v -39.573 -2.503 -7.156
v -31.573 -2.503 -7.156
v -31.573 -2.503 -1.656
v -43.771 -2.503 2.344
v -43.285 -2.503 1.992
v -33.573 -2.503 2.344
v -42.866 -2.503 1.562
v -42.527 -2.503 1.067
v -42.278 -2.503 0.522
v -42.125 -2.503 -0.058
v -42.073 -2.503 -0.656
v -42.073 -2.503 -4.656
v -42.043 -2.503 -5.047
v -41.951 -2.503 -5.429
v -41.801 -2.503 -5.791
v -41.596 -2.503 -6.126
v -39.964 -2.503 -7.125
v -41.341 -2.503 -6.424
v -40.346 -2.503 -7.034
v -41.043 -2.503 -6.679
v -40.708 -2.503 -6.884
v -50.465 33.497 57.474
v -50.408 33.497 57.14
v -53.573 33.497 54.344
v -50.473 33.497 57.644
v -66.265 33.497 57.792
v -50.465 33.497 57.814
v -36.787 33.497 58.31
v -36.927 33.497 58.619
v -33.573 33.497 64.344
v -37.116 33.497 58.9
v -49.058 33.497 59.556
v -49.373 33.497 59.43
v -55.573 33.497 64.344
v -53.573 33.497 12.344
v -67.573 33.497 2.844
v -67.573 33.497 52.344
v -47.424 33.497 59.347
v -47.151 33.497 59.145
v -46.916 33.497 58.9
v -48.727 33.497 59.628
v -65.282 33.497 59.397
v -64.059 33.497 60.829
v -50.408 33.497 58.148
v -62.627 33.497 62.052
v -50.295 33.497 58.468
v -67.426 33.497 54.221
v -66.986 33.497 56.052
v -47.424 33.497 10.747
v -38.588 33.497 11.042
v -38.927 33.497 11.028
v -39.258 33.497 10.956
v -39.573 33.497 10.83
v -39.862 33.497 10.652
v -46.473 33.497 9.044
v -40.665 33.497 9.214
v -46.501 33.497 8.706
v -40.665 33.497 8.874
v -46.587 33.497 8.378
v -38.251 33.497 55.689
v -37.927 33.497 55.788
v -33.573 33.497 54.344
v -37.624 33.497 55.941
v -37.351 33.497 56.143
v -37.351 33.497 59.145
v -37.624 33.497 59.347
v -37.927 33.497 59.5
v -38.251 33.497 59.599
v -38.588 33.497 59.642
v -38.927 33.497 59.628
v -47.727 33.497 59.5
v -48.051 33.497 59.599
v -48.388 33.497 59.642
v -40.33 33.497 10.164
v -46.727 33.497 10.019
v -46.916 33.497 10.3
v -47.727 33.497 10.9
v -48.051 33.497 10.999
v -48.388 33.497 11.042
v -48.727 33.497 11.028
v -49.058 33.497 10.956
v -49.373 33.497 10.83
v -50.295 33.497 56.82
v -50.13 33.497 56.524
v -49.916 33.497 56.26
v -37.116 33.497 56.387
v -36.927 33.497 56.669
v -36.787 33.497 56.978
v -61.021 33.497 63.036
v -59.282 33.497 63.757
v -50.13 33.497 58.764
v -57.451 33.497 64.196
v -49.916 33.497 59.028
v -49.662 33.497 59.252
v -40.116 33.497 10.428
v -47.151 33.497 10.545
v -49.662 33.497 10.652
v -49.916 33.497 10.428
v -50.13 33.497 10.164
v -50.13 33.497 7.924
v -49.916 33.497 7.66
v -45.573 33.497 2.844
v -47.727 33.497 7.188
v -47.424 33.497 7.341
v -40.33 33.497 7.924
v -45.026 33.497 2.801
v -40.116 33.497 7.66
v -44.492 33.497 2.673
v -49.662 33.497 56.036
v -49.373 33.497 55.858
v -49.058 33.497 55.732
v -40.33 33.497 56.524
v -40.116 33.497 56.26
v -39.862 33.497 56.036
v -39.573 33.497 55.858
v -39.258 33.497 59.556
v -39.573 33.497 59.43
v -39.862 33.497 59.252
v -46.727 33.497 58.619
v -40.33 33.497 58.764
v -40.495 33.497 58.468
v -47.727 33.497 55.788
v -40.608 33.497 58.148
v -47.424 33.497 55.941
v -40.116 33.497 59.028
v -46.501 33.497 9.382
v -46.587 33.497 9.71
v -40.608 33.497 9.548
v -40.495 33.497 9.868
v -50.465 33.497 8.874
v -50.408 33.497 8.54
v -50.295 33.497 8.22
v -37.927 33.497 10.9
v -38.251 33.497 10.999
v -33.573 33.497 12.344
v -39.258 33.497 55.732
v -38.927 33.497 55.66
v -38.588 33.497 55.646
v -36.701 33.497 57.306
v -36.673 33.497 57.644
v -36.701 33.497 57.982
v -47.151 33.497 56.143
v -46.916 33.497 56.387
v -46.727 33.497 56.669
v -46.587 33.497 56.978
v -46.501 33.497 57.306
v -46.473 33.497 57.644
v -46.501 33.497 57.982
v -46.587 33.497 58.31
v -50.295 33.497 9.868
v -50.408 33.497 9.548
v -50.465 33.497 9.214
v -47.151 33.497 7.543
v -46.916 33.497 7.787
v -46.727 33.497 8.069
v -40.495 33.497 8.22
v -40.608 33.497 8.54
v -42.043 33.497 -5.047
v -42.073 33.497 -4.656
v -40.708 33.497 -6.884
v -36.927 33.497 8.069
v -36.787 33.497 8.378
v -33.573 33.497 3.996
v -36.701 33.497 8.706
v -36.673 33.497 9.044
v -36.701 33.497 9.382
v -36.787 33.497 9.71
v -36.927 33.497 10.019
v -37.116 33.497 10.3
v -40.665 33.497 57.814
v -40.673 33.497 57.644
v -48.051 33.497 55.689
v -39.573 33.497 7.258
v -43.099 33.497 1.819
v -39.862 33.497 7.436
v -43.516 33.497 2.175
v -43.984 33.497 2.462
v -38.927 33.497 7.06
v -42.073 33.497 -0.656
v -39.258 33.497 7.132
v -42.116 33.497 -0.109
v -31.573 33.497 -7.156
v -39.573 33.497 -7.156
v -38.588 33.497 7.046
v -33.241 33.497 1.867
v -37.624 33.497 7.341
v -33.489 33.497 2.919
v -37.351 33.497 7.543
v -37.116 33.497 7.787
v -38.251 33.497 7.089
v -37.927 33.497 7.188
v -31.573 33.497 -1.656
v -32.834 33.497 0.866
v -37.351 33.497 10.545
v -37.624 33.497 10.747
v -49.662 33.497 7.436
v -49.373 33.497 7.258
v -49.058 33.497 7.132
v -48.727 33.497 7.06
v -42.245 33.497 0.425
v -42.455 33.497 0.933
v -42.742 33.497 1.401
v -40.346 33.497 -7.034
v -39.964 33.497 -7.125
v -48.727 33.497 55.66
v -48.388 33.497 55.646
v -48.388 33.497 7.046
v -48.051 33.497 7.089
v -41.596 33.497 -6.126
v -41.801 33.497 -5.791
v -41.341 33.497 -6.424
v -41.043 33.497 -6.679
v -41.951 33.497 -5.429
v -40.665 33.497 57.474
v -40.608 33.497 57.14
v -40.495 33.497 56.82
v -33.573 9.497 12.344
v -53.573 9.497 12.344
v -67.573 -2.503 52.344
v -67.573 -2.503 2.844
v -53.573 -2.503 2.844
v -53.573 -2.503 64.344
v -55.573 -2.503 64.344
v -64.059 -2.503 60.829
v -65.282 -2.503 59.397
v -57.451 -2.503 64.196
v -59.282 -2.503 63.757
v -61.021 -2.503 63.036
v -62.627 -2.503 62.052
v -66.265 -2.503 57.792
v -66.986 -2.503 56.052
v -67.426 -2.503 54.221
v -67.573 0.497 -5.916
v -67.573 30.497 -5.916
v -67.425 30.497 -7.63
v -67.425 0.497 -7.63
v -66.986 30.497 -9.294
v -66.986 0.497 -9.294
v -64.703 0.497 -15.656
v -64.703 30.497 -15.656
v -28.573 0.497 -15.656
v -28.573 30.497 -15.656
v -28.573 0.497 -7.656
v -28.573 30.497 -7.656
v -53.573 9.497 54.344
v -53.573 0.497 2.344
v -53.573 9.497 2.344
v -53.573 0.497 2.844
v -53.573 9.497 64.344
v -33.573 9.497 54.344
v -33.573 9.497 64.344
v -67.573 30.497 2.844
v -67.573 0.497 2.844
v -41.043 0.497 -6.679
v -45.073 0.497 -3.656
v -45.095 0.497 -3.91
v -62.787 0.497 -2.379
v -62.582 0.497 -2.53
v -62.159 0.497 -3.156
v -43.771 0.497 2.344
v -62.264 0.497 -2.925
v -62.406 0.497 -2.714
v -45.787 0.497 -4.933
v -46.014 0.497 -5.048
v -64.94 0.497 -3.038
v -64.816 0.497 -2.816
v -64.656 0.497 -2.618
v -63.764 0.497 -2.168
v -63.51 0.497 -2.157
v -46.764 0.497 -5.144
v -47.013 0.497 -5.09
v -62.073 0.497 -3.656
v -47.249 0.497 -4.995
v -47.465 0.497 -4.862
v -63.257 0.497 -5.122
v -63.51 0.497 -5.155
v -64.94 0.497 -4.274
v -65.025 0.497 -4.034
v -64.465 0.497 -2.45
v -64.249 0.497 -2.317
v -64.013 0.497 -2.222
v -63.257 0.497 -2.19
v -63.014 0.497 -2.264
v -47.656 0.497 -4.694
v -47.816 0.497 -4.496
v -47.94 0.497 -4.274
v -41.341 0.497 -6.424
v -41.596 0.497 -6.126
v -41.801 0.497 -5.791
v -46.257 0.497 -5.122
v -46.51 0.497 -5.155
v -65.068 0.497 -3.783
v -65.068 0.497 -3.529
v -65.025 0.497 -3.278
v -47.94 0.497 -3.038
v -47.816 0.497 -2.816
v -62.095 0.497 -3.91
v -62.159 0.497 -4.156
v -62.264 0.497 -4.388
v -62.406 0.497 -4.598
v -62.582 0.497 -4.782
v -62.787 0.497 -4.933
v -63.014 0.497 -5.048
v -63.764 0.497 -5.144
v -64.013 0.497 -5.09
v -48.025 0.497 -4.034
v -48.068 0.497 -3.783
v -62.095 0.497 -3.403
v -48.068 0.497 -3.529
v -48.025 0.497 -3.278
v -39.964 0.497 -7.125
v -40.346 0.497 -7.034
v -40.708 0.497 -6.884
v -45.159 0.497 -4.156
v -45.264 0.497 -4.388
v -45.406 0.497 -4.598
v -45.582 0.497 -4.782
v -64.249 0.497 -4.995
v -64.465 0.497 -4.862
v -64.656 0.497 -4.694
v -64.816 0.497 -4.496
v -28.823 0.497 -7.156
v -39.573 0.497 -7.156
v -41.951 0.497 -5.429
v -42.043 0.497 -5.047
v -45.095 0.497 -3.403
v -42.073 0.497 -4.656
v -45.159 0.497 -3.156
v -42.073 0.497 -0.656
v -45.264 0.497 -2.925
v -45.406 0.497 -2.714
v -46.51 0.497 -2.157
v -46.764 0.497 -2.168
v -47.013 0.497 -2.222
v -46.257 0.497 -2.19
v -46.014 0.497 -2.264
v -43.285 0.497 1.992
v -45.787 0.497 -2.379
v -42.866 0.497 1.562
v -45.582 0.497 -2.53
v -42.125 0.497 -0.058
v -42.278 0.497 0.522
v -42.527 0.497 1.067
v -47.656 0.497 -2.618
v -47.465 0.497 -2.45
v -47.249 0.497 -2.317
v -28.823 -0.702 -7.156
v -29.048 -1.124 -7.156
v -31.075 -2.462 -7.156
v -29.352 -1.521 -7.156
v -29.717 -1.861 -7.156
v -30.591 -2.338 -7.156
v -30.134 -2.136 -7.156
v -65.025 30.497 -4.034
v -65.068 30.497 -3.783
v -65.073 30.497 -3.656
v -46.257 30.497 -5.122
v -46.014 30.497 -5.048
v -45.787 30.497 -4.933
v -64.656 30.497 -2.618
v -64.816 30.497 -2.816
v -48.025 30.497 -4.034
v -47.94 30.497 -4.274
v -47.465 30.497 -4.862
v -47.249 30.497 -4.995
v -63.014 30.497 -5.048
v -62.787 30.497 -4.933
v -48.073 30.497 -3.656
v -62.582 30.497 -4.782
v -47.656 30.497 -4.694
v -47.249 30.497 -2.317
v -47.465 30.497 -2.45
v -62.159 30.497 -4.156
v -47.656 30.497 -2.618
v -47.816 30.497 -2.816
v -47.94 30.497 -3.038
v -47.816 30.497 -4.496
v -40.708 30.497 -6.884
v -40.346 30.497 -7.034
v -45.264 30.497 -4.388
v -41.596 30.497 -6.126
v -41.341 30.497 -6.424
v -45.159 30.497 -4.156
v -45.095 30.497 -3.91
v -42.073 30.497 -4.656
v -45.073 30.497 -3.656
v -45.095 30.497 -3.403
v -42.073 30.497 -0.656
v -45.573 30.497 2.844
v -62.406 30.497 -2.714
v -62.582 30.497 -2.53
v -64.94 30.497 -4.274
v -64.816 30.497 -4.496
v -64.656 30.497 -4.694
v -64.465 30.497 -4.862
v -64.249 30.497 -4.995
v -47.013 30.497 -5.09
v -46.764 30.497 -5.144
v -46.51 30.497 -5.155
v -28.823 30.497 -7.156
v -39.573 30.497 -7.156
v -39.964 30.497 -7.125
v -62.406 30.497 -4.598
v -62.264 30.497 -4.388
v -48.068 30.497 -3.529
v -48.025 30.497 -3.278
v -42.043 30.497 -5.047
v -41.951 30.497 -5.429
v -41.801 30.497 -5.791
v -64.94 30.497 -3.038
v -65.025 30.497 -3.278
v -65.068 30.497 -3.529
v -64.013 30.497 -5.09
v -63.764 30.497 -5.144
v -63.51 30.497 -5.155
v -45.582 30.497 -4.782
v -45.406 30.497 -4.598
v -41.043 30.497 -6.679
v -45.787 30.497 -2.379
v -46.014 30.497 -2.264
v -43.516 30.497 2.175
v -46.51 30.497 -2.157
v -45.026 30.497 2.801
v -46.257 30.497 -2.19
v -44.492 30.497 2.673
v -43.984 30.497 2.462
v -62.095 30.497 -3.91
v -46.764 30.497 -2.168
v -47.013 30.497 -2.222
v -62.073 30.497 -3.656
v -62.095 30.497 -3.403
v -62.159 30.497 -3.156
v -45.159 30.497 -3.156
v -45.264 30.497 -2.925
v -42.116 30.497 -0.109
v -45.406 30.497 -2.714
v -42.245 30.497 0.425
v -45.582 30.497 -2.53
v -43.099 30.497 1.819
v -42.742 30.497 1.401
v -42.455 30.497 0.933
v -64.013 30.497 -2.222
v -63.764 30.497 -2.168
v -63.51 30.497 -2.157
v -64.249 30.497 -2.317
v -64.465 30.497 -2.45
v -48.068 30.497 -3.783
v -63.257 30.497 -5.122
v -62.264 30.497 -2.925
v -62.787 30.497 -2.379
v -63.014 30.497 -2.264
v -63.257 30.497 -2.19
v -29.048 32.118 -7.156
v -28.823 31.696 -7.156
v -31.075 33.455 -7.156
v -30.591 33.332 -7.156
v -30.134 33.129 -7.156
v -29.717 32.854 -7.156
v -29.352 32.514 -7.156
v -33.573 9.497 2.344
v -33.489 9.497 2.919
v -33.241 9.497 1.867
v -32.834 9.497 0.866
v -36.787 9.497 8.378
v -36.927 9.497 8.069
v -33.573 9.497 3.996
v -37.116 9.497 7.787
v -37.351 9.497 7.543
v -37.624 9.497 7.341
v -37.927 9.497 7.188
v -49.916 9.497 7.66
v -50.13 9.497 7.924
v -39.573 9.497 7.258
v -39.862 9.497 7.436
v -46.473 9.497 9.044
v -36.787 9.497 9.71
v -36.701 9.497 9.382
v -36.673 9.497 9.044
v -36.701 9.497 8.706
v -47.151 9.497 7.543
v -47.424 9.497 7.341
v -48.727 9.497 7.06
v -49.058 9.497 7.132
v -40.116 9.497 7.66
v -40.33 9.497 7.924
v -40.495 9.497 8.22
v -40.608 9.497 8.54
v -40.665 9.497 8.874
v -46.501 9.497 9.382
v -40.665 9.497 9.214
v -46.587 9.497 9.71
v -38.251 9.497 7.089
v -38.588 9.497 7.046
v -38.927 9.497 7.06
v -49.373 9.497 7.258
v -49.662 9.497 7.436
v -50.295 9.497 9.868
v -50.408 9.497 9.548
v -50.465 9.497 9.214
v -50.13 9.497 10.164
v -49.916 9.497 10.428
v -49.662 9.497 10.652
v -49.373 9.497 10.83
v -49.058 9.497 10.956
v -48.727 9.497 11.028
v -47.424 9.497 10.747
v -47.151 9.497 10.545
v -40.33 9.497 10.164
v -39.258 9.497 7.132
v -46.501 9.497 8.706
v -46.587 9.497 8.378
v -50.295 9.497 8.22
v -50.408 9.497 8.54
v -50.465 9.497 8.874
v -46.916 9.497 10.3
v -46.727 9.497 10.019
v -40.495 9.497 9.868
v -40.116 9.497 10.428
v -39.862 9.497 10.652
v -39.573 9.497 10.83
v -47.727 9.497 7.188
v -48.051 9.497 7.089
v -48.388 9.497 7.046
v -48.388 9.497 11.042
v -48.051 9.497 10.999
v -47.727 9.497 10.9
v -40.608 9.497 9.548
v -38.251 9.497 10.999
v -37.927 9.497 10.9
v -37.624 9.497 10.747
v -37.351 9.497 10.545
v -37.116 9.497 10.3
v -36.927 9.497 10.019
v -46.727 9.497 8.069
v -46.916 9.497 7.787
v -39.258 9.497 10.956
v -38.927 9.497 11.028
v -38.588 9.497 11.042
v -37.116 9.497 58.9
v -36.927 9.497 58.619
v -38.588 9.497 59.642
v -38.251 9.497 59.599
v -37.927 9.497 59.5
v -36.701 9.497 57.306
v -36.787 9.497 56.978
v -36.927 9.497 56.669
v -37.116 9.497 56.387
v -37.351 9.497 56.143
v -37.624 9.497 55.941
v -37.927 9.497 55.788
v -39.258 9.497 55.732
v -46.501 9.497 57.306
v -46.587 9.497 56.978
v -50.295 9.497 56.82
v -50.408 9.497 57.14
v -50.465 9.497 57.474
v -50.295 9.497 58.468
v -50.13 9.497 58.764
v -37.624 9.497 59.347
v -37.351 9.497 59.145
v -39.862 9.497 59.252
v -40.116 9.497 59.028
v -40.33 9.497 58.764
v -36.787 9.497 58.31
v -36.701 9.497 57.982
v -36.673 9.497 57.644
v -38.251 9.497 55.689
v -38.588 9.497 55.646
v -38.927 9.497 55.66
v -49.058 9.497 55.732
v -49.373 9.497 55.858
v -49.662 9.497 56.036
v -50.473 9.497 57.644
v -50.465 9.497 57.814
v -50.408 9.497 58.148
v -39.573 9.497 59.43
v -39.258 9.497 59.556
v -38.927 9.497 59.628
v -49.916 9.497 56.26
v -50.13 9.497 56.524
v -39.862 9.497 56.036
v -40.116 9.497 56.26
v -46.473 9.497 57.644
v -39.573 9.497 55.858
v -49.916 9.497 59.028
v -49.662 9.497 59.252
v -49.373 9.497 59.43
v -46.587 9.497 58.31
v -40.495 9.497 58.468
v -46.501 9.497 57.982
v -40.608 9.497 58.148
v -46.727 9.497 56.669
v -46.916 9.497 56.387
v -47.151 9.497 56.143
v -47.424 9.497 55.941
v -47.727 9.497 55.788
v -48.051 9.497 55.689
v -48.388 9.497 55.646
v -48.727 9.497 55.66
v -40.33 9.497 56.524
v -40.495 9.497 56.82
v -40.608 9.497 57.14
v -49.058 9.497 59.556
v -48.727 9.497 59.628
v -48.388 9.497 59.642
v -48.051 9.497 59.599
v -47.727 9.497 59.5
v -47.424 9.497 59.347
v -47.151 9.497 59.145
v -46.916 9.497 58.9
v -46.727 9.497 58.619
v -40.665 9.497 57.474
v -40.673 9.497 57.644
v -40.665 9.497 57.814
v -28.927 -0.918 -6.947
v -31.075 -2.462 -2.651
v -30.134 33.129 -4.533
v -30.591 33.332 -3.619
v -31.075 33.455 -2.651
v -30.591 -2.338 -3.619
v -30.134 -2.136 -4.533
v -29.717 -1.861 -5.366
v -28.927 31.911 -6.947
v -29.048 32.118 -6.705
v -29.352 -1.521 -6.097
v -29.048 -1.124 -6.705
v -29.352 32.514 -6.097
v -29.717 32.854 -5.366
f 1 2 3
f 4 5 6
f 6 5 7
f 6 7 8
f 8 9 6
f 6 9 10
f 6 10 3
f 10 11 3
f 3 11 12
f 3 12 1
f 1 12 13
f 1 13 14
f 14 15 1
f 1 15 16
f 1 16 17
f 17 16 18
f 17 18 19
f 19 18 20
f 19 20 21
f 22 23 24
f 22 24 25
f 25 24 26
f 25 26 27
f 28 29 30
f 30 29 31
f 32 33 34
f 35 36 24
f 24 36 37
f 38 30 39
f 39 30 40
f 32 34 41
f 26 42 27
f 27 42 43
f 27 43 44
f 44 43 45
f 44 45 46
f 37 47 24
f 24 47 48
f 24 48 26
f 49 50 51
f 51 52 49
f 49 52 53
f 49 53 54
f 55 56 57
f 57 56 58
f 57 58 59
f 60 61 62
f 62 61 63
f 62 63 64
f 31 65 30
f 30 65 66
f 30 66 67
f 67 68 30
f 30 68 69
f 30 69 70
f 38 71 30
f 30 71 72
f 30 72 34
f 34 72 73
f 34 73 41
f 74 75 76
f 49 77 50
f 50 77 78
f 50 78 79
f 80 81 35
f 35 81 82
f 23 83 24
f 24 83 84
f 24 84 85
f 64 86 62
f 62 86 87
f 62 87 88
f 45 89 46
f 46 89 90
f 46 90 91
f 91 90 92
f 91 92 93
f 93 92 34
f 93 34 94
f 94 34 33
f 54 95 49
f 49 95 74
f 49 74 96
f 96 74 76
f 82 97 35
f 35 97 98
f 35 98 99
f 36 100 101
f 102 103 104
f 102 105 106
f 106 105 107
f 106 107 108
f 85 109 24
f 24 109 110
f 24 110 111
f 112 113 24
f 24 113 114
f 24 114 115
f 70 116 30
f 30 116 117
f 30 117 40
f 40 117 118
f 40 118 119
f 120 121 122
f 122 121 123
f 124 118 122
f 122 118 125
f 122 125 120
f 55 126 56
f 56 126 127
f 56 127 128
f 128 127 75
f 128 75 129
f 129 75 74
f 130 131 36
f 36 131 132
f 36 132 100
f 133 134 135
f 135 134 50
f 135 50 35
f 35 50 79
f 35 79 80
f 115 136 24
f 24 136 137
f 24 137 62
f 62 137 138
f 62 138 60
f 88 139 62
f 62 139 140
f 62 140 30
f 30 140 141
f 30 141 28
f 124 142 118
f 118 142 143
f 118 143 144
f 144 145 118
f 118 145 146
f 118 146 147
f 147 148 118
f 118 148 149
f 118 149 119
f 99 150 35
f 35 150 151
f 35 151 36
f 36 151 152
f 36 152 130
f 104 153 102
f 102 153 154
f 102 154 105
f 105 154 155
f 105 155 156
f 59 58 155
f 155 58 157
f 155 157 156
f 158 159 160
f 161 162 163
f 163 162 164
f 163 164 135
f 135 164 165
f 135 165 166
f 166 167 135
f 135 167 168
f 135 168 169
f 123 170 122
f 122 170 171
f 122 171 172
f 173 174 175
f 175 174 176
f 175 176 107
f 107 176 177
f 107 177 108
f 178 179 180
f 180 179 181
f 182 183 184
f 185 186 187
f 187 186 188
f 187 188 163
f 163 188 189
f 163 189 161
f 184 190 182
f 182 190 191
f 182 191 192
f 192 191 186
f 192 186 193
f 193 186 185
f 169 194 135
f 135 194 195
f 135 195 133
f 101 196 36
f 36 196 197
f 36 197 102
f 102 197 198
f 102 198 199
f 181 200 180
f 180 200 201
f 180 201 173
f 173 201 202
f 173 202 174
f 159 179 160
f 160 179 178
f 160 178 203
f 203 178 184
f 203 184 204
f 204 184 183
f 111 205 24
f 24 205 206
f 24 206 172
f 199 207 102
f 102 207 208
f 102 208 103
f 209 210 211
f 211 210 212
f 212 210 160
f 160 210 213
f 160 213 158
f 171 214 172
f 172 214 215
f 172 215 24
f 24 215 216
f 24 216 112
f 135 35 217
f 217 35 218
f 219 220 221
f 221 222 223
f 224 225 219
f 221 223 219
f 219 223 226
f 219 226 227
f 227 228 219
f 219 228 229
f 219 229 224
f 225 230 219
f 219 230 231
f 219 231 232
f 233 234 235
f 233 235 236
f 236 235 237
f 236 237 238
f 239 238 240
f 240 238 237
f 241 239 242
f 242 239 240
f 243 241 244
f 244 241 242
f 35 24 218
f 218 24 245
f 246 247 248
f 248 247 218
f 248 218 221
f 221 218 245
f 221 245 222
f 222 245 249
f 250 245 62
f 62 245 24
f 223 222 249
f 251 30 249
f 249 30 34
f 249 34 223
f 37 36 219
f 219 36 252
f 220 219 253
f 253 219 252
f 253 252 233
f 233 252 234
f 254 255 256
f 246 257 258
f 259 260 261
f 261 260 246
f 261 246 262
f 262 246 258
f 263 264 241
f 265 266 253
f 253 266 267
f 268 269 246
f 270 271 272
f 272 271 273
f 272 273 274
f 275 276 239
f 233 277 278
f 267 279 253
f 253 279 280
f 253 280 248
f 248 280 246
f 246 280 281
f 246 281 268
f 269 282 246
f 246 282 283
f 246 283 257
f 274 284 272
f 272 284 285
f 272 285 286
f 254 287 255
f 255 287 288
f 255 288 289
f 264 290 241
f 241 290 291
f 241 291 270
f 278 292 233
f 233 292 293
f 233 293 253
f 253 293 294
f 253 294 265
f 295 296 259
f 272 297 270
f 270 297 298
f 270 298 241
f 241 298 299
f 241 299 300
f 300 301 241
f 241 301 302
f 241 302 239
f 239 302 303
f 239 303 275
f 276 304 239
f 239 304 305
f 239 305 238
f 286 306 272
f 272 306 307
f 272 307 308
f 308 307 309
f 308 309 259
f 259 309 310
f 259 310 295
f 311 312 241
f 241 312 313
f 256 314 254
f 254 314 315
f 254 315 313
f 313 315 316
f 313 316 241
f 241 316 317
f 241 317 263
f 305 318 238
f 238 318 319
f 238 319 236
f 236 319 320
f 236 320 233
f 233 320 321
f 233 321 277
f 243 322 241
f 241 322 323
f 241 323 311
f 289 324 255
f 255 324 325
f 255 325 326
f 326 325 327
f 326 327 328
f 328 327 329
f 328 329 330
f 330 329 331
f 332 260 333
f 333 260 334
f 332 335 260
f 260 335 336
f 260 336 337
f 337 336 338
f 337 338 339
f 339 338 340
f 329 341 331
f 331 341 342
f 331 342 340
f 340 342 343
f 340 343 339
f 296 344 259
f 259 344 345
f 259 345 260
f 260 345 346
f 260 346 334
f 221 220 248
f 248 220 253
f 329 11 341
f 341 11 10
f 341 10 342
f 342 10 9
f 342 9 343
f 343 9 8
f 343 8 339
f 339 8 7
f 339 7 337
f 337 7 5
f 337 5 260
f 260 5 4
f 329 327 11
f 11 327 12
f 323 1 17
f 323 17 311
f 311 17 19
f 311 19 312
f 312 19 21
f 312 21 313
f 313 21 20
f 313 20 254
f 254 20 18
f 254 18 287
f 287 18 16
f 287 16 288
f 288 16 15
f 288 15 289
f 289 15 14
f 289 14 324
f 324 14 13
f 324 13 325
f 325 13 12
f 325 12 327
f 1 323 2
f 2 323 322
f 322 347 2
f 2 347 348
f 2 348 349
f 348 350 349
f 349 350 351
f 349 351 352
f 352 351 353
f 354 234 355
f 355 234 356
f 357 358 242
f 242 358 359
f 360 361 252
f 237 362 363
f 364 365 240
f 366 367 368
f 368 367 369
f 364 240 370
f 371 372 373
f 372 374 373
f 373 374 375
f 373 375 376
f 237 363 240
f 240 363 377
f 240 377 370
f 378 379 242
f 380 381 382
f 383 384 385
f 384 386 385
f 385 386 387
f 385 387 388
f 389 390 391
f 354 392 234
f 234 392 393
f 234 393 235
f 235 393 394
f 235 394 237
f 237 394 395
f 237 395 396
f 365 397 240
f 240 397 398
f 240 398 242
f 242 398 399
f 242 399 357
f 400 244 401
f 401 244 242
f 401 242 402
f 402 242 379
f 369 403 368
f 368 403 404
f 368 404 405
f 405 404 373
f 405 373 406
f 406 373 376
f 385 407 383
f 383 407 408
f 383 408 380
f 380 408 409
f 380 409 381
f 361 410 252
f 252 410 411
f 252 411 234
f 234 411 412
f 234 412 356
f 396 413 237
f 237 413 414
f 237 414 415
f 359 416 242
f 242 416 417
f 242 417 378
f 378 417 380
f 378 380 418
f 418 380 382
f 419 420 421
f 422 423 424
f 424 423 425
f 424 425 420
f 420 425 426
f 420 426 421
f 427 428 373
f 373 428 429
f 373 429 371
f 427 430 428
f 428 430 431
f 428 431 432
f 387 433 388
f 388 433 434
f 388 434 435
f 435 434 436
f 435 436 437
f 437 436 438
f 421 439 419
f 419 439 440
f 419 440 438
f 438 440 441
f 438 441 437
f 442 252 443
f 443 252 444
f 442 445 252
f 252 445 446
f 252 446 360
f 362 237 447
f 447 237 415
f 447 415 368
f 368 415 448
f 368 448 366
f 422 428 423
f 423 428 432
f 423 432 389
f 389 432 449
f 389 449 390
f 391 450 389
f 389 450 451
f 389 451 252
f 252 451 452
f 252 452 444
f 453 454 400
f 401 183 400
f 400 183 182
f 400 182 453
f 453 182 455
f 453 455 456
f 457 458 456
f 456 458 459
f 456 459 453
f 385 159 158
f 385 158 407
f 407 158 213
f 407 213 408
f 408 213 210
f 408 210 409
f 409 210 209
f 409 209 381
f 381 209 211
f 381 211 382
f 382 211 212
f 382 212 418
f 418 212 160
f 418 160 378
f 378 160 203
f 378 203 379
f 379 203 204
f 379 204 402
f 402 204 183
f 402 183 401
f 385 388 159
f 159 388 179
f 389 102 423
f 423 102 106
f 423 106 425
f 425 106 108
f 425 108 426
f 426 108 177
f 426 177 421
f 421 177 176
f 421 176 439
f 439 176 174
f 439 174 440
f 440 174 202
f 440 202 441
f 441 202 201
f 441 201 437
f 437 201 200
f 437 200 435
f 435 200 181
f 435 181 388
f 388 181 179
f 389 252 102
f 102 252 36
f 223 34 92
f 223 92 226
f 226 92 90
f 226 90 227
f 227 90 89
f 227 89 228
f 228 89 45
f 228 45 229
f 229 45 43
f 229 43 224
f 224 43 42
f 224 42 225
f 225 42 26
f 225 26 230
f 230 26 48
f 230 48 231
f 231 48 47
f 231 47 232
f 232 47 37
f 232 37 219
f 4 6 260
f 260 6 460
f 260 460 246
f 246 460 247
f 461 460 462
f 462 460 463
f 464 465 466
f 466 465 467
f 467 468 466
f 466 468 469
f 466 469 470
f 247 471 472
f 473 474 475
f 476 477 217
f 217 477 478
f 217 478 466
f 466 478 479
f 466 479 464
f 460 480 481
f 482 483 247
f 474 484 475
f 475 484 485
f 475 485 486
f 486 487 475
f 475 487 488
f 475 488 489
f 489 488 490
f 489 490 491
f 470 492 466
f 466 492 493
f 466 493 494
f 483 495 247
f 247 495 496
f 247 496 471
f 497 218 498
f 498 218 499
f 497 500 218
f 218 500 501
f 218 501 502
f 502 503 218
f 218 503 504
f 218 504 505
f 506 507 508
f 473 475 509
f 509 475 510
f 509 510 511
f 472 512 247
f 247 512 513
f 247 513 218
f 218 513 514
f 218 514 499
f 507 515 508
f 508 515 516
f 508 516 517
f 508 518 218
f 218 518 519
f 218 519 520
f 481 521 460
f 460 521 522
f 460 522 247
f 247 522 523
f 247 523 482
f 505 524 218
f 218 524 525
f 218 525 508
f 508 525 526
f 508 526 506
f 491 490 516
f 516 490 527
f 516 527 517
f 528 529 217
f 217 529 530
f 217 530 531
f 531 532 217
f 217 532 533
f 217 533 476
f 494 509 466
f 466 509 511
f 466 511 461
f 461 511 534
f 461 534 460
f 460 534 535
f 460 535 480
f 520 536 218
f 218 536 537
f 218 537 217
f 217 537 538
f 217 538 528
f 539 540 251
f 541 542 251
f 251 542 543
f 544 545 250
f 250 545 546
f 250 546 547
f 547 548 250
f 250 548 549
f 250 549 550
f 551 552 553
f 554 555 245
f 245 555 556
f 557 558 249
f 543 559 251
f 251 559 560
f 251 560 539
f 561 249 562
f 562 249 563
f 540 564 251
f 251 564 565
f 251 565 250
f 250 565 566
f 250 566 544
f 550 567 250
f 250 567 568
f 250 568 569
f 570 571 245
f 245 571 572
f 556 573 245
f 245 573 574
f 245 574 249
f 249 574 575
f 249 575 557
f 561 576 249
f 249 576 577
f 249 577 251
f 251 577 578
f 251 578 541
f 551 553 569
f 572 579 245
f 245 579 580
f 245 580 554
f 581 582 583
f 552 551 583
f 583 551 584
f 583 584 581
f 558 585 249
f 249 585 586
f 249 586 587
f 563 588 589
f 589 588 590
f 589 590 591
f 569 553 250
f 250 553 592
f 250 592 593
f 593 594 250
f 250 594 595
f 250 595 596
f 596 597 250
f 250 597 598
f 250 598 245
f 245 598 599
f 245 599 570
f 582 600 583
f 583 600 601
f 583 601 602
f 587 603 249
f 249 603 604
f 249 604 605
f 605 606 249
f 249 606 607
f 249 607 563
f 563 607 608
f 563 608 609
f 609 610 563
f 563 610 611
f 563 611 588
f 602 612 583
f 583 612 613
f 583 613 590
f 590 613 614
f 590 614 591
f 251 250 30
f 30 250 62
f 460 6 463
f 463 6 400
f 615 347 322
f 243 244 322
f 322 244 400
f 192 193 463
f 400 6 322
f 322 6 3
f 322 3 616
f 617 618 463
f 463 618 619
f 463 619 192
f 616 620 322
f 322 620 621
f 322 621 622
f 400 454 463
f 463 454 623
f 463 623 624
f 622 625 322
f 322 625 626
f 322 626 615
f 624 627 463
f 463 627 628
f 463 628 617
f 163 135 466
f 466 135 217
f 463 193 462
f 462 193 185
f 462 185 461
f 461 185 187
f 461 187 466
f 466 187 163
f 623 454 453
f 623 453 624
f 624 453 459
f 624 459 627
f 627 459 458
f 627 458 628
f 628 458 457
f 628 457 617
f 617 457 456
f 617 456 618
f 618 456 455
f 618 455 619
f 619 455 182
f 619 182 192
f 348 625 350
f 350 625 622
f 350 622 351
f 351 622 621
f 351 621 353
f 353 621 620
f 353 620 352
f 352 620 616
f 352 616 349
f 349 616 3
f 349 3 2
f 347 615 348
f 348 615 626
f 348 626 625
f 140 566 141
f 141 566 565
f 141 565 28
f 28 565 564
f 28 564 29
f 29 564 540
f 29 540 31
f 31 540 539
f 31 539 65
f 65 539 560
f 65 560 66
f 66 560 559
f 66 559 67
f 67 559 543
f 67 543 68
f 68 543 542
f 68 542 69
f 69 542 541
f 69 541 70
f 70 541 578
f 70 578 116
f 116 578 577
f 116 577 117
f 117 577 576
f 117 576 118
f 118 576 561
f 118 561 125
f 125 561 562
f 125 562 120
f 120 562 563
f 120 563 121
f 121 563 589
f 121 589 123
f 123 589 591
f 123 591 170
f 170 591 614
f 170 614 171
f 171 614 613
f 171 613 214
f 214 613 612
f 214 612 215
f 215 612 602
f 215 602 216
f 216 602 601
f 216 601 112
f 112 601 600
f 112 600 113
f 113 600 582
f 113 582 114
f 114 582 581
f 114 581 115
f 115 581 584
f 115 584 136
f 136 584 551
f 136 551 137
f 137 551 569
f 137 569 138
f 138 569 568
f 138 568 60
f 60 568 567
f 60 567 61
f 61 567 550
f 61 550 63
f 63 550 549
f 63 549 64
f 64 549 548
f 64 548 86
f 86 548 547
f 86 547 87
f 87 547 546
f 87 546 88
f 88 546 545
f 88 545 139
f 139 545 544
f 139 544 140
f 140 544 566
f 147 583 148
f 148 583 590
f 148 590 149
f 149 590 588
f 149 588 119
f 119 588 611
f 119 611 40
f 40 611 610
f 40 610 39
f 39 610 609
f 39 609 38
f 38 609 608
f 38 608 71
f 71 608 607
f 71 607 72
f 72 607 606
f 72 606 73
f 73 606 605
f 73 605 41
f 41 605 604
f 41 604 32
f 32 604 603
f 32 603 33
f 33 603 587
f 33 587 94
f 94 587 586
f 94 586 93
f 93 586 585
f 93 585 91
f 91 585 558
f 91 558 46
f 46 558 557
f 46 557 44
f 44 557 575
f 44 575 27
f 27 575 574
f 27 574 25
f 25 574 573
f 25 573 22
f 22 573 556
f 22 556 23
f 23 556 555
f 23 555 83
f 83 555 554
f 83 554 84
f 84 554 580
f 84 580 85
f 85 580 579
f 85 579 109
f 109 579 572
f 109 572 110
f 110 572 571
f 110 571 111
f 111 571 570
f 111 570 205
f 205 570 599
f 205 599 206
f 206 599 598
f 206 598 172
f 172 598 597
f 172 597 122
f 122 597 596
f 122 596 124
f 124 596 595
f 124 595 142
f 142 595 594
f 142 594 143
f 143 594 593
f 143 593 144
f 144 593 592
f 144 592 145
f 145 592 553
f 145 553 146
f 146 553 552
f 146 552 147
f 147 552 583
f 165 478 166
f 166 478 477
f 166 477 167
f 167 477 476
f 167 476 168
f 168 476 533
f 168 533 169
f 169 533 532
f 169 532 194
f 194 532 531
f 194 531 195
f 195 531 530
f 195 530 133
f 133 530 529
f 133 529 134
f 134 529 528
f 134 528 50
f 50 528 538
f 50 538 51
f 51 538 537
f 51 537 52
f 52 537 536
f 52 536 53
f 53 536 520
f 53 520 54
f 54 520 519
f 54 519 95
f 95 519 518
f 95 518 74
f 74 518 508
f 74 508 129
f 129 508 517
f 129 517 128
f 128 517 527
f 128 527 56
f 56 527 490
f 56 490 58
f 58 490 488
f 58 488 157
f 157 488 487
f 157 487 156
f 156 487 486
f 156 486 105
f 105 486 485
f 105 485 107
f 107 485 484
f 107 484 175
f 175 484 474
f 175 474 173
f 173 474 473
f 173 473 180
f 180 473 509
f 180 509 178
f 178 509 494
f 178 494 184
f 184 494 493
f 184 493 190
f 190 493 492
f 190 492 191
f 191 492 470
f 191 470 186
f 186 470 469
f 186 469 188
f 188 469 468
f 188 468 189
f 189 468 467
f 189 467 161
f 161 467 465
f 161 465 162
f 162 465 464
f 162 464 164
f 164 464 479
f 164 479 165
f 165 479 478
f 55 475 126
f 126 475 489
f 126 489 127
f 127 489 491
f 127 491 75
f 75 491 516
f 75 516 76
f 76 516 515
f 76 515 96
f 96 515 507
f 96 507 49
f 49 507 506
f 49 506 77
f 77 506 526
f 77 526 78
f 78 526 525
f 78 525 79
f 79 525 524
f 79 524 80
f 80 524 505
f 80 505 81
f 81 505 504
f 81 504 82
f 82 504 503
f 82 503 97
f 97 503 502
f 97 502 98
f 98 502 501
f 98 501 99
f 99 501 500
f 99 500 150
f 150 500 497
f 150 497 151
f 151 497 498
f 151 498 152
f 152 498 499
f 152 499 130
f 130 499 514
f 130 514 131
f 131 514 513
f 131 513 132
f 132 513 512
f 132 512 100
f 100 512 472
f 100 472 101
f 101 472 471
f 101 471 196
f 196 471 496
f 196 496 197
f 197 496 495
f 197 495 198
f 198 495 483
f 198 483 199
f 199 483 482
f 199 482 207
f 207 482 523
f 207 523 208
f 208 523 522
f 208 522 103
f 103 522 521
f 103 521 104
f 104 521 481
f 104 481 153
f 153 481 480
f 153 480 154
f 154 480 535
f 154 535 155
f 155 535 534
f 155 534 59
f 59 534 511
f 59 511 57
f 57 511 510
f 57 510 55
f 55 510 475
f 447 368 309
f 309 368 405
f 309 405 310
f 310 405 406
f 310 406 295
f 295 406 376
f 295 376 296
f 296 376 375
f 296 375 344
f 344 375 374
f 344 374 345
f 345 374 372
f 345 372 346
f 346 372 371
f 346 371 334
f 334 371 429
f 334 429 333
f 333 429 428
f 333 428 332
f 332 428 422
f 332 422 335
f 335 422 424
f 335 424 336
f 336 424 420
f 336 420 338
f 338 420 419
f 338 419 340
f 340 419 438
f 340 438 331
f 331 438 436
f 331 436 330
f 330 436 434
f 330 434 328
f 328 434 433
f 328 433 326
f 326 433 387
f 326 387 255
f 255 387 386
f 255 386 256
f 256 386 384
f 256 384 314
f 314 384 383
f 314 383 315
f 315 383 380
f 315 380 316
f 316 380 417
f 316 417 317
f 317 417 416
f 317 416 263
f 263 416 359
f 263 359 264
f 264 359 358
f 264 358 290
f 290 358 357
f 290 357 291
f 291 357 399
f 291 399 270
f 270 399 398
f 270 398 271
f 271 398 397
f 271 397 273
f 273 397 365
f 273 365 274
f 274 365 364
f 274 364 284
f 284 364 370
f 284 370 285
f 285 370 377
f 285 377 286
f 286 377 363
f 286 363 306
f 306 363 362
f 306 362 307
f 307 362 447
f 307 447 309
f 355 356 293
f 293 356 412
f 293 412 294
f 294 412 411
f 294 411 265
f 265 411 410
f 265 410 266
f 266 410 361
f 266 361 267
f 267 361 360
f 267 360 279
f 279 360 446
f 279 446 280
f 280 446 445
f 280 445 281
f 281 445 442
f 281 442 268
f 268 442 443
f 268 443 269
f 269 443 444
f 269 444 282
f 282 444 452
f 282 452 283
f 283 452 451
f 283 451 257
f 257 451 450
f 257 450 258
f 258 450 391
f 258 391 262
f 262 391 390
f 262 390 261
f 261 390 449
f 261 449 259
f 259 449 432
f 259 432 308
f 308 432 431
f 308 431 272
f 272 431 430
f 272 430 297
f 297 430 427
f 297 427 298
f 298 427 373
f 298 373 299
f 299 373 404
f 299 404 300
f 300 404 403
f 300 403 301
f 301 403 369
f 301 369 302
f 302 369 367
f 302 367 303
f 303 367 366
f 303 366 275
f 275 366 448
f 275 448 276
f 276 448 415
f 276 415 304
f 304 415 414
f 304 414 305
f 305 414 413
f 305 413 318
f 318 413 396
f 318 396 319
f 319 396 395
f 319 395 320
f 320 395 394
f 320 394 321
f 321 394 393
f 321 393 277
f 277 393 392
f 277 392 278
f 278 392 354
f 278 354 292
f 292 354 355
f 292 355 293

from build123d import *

# Parameters (mm, degrees)
BOSS_EXTRUDE1_DEPTH     = 36
CUT_EXTRUDE2_DEPTH      = 3
CUT_EXTRUDE3_DEPTH      = 3
FILLET3_R               = 12
SKETCH5_W               = 25.000013064
SKETCH5_H               = 10
SKETCH5_H_2             = 9.999999996
CUT_EXTRUDE4_DEPTH      = 12
CUT_EXTRUDE5_DEPTH      = 13
CUT_EXTRUDE5_DEPTH_BACK = 25
FILLET4_R               = 7
CUT_EXTRUDE6_DEPTH      = 1
CUT_EXTRUDE6_DEPTH_BACK = 81
SKETCH8_R               = 1.5
SKETCH8_R_2             = 2
CUT_EXTRUDE7_DEPTH      = 34


with BuildPart() as part:
    # Sketch1 → Boss-Extrude1 (new body)
    with BuildSketch(Plane.XZ.offset(-33.496710387)):
        with BuildLine():
            Line((-28.572528903, 54.343907724), (-28.572528903, 64.34390772))
            Line((-28.572528903, 64.34390772), (-67.573393535, 64.34390772))
            Line((-67.573393535, 64.34390772), (-67.573393535, -5.916364341))
            ThreePointArc((-67.573393535, -5.916364341), (-67.425411698, -7.63034746), (-66.98584591, -9.293602903))
            Line((-66.98584591, -9.293602903), (-64.702950485, -15.65609228))
            Line((-64.702950485, -15.65609228), (-28.572528903, -15.65609228))
            Line((-28.572528903, -15.65609228), (-28.572528903, 12.343907724))
            Line((-28.572528903, 12.343907724), (-53.572541967, 12.343907724))
            Line((-53.572541967, 12.343907724), (-53.572541967, 54.343907724))
            Line((-53.572541967, 54.343907724), (-28.572528903, 54.343907724))
        make_face()
    extrude(amount=BOSS_EXTRUDE1_DEPTH)

    # Sketch3 → Cut-Extrude2 (cut)
    with BuildSketch(Plane.XZ.offset(2.503289613)):
        with BuildLine():
            Line((-28.572528903, -15.65609228), (-67.573393527, -15.65609228))
            Line((-67.573393527, -15.65609228), (-67.573393527, 2.843907727))
            Line((-67.573393527, 2.843907727), (-45.573393535, 2.843907727))
            ThreePointArc((-45.573393535, 2.843907727), (-43.098519801, 1.818781461), (-42.073393535, -0.656092273))
            Line((-42.073393535, -0.656092273), (-42.073393535, -4.656092274))
            ThreePointArc((-42.073393535, -4.656092274), (-41.341160488, -6.423859227), (-39.573393535, -7.156092274))
            Line((-39.573393535, -7.156092274), (-28.572528903, -7.156092274))
            Line((-28.572528903, -7.156092274), (-28.572528903, -15.65609228))
        make_face()
    extrude(amount=-CUT_EXTRUDE2_DEPTH, mode=Mode.SUBTRACT)

    # Sketch4 → Cut-Extrude3 (cut)
    with BuildSketch(Plane(origin=(0, 33.496710387, 0), x_dir=(1, 0, 0), z_dir=(0, 1, 0))):
        with BuildLine():
            Line((-67.573393527, 15.65609228), (-67.573393527, -2.843907727))
            Line((-67.573393527, -2.843907727), (-45.573393535, -2.843907727))
            ThreePointArc((-45.573393535, -2.843907727), (-43.098519801, -1.818781461), (-42.073393535, 0.656092273))
            Line((-42.073393535, 0.656092273), (-42.073393535, 4.656092274))
            ThreePointArc((-42.073393535, 4.656092274), (-41.341160488, 6.423859227), (-39.573393535, 7.156092274))
            Line((-39.573393535, 7.156092274), (-28.572528903, 7.156092274))
            Line((-28.572528903, 7.156092274), (-28.572528903, 15.65609228))
            Line((-28.572528903, 15.65609228), (-67.573393527, 15.65609228))
        make_face()
    extrude(amount=-CUT_EXTRUDE3_DEPTH, mode=Mode.SUBTRACT)

    # Fillet3
    fillet3_edges = [part.edges().sort_by_distance(p)[0] for p in [
        (-67.573393535, 15.496710387, 64.34390772),
    ]]
    fillet(fillet3_edges, radius=FILLET3_R)

    # Sketch5 → Cut-Extrude4 (cut)
    with BuildSketch(Plane.XZ.offset(2.503289613)):
        with Locations((-41.072535435, 7.343907724)):
            Rectangle(SKETCH5_W, SKETCH5_H)
        with Locations((-41.072535435, 59.343907722)):
            Rectangle(SKETCH5_W, SKETCH5_H_2)
    extrude(amount=-CUT_EXTRUDE4_DEPTH, mode=Mode.SUBTRACT)

    # Sketch6 → Cut-Extrude5 (cut, two sides)
    with BuildSketch(Plane.XZ.offset(-9.496710387)) as cut_extrude5_sk:
        Polygon((-33.572541967, 64.34390772), (-33.572541967, 2.343907724), (-28.572528903, -7.656092278), (-28.572528903, 64.34390772), align=None)
    extrude(amount=CUT_EXTRUDE5_DEPTH, mode=Mode.SUBTRACT)
    extrude(cut_extrude5_sk.sketch, amount=-CUT_EXTRUDE5_DEPTH_BACK, mode=Mode.SUBTRACT)

    # Fillet4
    fillet4_edges = [part.edges().sort_by_distance(p)[0] for p in [
        (-33.572541967, 21.496710387, 2.343907724),
    ]]
    fillet(fillet4_edges, radius=FILLET4_R)

    # Sketch7 → Cut-Extrude6 (cut, two sides)
    with BuildSketch(Plane(origin=(0, 0, -15.65609228), x_dir=(-1, 0, 0), z_dir=(0, 0, -1))) as cut_extrude6_sk:
        with BuildLine():
            Line((31.572528926, -2.503289613), (28.572528926, -2.503289613))
            Line((28.572528926, -2.503289613), (28.572528926, 0.496710387))
            ThreePointArc((28.572528926, 0.496710387), (29.451208582, -1.624609954), (31.572528926, -2.503289613))
        make_face()
        with BuildLine():
            Line((31.572528902, 33.496710387), (28.572528902, 33.496710387))
            Line((28.572528902, 33.496710387), (28.572528902, 30.496710387))
            ThreePointArc((28.572528902, 30.496710387), (29.451208558, 32.618030731), (31.572528902, 33.496710387))
        make_face()
    extrude(amount=CUT_EXTRUDE6_DEPTH, mode=Mode.SUBTRACT)
    extrude(cut_extrude6_sk.sketch, amount=-CUT_EXTRUDE6_DEPTH_BACK, mode=Mode.SUBTRACT)

    # Sketch8 → Cut-Extrude7 (cut, through all)
    with BuildSketch(Plane.XZ.offset(-0.496710387)):
        with Locations((-46.573393534, -3.65609228)):
            Circle(SKETCH8_R)
        with Locations((-63.573393534, -3.656092278)):
            Circle(SKETCH8_R)
        with Locations((-38.672541967, 9.043907724)):
            Circle(SKETCH8_R_2)
        with Locations((-48.472541967, 9.043907724)):
            Circle(SKETCH8_R_2)
        with Locations((-48.472541967, 57.643907724)):
            Circle(SKETCH8_R_2)
        with Locations((-38.672541967, 57.643907724)):
            Circle(SKETCH8_R_2)
    extrude(amount=-CUT_EXTRUDE7_DEPTH, mode=Mode.SUBTRACT)


solid = part.part
